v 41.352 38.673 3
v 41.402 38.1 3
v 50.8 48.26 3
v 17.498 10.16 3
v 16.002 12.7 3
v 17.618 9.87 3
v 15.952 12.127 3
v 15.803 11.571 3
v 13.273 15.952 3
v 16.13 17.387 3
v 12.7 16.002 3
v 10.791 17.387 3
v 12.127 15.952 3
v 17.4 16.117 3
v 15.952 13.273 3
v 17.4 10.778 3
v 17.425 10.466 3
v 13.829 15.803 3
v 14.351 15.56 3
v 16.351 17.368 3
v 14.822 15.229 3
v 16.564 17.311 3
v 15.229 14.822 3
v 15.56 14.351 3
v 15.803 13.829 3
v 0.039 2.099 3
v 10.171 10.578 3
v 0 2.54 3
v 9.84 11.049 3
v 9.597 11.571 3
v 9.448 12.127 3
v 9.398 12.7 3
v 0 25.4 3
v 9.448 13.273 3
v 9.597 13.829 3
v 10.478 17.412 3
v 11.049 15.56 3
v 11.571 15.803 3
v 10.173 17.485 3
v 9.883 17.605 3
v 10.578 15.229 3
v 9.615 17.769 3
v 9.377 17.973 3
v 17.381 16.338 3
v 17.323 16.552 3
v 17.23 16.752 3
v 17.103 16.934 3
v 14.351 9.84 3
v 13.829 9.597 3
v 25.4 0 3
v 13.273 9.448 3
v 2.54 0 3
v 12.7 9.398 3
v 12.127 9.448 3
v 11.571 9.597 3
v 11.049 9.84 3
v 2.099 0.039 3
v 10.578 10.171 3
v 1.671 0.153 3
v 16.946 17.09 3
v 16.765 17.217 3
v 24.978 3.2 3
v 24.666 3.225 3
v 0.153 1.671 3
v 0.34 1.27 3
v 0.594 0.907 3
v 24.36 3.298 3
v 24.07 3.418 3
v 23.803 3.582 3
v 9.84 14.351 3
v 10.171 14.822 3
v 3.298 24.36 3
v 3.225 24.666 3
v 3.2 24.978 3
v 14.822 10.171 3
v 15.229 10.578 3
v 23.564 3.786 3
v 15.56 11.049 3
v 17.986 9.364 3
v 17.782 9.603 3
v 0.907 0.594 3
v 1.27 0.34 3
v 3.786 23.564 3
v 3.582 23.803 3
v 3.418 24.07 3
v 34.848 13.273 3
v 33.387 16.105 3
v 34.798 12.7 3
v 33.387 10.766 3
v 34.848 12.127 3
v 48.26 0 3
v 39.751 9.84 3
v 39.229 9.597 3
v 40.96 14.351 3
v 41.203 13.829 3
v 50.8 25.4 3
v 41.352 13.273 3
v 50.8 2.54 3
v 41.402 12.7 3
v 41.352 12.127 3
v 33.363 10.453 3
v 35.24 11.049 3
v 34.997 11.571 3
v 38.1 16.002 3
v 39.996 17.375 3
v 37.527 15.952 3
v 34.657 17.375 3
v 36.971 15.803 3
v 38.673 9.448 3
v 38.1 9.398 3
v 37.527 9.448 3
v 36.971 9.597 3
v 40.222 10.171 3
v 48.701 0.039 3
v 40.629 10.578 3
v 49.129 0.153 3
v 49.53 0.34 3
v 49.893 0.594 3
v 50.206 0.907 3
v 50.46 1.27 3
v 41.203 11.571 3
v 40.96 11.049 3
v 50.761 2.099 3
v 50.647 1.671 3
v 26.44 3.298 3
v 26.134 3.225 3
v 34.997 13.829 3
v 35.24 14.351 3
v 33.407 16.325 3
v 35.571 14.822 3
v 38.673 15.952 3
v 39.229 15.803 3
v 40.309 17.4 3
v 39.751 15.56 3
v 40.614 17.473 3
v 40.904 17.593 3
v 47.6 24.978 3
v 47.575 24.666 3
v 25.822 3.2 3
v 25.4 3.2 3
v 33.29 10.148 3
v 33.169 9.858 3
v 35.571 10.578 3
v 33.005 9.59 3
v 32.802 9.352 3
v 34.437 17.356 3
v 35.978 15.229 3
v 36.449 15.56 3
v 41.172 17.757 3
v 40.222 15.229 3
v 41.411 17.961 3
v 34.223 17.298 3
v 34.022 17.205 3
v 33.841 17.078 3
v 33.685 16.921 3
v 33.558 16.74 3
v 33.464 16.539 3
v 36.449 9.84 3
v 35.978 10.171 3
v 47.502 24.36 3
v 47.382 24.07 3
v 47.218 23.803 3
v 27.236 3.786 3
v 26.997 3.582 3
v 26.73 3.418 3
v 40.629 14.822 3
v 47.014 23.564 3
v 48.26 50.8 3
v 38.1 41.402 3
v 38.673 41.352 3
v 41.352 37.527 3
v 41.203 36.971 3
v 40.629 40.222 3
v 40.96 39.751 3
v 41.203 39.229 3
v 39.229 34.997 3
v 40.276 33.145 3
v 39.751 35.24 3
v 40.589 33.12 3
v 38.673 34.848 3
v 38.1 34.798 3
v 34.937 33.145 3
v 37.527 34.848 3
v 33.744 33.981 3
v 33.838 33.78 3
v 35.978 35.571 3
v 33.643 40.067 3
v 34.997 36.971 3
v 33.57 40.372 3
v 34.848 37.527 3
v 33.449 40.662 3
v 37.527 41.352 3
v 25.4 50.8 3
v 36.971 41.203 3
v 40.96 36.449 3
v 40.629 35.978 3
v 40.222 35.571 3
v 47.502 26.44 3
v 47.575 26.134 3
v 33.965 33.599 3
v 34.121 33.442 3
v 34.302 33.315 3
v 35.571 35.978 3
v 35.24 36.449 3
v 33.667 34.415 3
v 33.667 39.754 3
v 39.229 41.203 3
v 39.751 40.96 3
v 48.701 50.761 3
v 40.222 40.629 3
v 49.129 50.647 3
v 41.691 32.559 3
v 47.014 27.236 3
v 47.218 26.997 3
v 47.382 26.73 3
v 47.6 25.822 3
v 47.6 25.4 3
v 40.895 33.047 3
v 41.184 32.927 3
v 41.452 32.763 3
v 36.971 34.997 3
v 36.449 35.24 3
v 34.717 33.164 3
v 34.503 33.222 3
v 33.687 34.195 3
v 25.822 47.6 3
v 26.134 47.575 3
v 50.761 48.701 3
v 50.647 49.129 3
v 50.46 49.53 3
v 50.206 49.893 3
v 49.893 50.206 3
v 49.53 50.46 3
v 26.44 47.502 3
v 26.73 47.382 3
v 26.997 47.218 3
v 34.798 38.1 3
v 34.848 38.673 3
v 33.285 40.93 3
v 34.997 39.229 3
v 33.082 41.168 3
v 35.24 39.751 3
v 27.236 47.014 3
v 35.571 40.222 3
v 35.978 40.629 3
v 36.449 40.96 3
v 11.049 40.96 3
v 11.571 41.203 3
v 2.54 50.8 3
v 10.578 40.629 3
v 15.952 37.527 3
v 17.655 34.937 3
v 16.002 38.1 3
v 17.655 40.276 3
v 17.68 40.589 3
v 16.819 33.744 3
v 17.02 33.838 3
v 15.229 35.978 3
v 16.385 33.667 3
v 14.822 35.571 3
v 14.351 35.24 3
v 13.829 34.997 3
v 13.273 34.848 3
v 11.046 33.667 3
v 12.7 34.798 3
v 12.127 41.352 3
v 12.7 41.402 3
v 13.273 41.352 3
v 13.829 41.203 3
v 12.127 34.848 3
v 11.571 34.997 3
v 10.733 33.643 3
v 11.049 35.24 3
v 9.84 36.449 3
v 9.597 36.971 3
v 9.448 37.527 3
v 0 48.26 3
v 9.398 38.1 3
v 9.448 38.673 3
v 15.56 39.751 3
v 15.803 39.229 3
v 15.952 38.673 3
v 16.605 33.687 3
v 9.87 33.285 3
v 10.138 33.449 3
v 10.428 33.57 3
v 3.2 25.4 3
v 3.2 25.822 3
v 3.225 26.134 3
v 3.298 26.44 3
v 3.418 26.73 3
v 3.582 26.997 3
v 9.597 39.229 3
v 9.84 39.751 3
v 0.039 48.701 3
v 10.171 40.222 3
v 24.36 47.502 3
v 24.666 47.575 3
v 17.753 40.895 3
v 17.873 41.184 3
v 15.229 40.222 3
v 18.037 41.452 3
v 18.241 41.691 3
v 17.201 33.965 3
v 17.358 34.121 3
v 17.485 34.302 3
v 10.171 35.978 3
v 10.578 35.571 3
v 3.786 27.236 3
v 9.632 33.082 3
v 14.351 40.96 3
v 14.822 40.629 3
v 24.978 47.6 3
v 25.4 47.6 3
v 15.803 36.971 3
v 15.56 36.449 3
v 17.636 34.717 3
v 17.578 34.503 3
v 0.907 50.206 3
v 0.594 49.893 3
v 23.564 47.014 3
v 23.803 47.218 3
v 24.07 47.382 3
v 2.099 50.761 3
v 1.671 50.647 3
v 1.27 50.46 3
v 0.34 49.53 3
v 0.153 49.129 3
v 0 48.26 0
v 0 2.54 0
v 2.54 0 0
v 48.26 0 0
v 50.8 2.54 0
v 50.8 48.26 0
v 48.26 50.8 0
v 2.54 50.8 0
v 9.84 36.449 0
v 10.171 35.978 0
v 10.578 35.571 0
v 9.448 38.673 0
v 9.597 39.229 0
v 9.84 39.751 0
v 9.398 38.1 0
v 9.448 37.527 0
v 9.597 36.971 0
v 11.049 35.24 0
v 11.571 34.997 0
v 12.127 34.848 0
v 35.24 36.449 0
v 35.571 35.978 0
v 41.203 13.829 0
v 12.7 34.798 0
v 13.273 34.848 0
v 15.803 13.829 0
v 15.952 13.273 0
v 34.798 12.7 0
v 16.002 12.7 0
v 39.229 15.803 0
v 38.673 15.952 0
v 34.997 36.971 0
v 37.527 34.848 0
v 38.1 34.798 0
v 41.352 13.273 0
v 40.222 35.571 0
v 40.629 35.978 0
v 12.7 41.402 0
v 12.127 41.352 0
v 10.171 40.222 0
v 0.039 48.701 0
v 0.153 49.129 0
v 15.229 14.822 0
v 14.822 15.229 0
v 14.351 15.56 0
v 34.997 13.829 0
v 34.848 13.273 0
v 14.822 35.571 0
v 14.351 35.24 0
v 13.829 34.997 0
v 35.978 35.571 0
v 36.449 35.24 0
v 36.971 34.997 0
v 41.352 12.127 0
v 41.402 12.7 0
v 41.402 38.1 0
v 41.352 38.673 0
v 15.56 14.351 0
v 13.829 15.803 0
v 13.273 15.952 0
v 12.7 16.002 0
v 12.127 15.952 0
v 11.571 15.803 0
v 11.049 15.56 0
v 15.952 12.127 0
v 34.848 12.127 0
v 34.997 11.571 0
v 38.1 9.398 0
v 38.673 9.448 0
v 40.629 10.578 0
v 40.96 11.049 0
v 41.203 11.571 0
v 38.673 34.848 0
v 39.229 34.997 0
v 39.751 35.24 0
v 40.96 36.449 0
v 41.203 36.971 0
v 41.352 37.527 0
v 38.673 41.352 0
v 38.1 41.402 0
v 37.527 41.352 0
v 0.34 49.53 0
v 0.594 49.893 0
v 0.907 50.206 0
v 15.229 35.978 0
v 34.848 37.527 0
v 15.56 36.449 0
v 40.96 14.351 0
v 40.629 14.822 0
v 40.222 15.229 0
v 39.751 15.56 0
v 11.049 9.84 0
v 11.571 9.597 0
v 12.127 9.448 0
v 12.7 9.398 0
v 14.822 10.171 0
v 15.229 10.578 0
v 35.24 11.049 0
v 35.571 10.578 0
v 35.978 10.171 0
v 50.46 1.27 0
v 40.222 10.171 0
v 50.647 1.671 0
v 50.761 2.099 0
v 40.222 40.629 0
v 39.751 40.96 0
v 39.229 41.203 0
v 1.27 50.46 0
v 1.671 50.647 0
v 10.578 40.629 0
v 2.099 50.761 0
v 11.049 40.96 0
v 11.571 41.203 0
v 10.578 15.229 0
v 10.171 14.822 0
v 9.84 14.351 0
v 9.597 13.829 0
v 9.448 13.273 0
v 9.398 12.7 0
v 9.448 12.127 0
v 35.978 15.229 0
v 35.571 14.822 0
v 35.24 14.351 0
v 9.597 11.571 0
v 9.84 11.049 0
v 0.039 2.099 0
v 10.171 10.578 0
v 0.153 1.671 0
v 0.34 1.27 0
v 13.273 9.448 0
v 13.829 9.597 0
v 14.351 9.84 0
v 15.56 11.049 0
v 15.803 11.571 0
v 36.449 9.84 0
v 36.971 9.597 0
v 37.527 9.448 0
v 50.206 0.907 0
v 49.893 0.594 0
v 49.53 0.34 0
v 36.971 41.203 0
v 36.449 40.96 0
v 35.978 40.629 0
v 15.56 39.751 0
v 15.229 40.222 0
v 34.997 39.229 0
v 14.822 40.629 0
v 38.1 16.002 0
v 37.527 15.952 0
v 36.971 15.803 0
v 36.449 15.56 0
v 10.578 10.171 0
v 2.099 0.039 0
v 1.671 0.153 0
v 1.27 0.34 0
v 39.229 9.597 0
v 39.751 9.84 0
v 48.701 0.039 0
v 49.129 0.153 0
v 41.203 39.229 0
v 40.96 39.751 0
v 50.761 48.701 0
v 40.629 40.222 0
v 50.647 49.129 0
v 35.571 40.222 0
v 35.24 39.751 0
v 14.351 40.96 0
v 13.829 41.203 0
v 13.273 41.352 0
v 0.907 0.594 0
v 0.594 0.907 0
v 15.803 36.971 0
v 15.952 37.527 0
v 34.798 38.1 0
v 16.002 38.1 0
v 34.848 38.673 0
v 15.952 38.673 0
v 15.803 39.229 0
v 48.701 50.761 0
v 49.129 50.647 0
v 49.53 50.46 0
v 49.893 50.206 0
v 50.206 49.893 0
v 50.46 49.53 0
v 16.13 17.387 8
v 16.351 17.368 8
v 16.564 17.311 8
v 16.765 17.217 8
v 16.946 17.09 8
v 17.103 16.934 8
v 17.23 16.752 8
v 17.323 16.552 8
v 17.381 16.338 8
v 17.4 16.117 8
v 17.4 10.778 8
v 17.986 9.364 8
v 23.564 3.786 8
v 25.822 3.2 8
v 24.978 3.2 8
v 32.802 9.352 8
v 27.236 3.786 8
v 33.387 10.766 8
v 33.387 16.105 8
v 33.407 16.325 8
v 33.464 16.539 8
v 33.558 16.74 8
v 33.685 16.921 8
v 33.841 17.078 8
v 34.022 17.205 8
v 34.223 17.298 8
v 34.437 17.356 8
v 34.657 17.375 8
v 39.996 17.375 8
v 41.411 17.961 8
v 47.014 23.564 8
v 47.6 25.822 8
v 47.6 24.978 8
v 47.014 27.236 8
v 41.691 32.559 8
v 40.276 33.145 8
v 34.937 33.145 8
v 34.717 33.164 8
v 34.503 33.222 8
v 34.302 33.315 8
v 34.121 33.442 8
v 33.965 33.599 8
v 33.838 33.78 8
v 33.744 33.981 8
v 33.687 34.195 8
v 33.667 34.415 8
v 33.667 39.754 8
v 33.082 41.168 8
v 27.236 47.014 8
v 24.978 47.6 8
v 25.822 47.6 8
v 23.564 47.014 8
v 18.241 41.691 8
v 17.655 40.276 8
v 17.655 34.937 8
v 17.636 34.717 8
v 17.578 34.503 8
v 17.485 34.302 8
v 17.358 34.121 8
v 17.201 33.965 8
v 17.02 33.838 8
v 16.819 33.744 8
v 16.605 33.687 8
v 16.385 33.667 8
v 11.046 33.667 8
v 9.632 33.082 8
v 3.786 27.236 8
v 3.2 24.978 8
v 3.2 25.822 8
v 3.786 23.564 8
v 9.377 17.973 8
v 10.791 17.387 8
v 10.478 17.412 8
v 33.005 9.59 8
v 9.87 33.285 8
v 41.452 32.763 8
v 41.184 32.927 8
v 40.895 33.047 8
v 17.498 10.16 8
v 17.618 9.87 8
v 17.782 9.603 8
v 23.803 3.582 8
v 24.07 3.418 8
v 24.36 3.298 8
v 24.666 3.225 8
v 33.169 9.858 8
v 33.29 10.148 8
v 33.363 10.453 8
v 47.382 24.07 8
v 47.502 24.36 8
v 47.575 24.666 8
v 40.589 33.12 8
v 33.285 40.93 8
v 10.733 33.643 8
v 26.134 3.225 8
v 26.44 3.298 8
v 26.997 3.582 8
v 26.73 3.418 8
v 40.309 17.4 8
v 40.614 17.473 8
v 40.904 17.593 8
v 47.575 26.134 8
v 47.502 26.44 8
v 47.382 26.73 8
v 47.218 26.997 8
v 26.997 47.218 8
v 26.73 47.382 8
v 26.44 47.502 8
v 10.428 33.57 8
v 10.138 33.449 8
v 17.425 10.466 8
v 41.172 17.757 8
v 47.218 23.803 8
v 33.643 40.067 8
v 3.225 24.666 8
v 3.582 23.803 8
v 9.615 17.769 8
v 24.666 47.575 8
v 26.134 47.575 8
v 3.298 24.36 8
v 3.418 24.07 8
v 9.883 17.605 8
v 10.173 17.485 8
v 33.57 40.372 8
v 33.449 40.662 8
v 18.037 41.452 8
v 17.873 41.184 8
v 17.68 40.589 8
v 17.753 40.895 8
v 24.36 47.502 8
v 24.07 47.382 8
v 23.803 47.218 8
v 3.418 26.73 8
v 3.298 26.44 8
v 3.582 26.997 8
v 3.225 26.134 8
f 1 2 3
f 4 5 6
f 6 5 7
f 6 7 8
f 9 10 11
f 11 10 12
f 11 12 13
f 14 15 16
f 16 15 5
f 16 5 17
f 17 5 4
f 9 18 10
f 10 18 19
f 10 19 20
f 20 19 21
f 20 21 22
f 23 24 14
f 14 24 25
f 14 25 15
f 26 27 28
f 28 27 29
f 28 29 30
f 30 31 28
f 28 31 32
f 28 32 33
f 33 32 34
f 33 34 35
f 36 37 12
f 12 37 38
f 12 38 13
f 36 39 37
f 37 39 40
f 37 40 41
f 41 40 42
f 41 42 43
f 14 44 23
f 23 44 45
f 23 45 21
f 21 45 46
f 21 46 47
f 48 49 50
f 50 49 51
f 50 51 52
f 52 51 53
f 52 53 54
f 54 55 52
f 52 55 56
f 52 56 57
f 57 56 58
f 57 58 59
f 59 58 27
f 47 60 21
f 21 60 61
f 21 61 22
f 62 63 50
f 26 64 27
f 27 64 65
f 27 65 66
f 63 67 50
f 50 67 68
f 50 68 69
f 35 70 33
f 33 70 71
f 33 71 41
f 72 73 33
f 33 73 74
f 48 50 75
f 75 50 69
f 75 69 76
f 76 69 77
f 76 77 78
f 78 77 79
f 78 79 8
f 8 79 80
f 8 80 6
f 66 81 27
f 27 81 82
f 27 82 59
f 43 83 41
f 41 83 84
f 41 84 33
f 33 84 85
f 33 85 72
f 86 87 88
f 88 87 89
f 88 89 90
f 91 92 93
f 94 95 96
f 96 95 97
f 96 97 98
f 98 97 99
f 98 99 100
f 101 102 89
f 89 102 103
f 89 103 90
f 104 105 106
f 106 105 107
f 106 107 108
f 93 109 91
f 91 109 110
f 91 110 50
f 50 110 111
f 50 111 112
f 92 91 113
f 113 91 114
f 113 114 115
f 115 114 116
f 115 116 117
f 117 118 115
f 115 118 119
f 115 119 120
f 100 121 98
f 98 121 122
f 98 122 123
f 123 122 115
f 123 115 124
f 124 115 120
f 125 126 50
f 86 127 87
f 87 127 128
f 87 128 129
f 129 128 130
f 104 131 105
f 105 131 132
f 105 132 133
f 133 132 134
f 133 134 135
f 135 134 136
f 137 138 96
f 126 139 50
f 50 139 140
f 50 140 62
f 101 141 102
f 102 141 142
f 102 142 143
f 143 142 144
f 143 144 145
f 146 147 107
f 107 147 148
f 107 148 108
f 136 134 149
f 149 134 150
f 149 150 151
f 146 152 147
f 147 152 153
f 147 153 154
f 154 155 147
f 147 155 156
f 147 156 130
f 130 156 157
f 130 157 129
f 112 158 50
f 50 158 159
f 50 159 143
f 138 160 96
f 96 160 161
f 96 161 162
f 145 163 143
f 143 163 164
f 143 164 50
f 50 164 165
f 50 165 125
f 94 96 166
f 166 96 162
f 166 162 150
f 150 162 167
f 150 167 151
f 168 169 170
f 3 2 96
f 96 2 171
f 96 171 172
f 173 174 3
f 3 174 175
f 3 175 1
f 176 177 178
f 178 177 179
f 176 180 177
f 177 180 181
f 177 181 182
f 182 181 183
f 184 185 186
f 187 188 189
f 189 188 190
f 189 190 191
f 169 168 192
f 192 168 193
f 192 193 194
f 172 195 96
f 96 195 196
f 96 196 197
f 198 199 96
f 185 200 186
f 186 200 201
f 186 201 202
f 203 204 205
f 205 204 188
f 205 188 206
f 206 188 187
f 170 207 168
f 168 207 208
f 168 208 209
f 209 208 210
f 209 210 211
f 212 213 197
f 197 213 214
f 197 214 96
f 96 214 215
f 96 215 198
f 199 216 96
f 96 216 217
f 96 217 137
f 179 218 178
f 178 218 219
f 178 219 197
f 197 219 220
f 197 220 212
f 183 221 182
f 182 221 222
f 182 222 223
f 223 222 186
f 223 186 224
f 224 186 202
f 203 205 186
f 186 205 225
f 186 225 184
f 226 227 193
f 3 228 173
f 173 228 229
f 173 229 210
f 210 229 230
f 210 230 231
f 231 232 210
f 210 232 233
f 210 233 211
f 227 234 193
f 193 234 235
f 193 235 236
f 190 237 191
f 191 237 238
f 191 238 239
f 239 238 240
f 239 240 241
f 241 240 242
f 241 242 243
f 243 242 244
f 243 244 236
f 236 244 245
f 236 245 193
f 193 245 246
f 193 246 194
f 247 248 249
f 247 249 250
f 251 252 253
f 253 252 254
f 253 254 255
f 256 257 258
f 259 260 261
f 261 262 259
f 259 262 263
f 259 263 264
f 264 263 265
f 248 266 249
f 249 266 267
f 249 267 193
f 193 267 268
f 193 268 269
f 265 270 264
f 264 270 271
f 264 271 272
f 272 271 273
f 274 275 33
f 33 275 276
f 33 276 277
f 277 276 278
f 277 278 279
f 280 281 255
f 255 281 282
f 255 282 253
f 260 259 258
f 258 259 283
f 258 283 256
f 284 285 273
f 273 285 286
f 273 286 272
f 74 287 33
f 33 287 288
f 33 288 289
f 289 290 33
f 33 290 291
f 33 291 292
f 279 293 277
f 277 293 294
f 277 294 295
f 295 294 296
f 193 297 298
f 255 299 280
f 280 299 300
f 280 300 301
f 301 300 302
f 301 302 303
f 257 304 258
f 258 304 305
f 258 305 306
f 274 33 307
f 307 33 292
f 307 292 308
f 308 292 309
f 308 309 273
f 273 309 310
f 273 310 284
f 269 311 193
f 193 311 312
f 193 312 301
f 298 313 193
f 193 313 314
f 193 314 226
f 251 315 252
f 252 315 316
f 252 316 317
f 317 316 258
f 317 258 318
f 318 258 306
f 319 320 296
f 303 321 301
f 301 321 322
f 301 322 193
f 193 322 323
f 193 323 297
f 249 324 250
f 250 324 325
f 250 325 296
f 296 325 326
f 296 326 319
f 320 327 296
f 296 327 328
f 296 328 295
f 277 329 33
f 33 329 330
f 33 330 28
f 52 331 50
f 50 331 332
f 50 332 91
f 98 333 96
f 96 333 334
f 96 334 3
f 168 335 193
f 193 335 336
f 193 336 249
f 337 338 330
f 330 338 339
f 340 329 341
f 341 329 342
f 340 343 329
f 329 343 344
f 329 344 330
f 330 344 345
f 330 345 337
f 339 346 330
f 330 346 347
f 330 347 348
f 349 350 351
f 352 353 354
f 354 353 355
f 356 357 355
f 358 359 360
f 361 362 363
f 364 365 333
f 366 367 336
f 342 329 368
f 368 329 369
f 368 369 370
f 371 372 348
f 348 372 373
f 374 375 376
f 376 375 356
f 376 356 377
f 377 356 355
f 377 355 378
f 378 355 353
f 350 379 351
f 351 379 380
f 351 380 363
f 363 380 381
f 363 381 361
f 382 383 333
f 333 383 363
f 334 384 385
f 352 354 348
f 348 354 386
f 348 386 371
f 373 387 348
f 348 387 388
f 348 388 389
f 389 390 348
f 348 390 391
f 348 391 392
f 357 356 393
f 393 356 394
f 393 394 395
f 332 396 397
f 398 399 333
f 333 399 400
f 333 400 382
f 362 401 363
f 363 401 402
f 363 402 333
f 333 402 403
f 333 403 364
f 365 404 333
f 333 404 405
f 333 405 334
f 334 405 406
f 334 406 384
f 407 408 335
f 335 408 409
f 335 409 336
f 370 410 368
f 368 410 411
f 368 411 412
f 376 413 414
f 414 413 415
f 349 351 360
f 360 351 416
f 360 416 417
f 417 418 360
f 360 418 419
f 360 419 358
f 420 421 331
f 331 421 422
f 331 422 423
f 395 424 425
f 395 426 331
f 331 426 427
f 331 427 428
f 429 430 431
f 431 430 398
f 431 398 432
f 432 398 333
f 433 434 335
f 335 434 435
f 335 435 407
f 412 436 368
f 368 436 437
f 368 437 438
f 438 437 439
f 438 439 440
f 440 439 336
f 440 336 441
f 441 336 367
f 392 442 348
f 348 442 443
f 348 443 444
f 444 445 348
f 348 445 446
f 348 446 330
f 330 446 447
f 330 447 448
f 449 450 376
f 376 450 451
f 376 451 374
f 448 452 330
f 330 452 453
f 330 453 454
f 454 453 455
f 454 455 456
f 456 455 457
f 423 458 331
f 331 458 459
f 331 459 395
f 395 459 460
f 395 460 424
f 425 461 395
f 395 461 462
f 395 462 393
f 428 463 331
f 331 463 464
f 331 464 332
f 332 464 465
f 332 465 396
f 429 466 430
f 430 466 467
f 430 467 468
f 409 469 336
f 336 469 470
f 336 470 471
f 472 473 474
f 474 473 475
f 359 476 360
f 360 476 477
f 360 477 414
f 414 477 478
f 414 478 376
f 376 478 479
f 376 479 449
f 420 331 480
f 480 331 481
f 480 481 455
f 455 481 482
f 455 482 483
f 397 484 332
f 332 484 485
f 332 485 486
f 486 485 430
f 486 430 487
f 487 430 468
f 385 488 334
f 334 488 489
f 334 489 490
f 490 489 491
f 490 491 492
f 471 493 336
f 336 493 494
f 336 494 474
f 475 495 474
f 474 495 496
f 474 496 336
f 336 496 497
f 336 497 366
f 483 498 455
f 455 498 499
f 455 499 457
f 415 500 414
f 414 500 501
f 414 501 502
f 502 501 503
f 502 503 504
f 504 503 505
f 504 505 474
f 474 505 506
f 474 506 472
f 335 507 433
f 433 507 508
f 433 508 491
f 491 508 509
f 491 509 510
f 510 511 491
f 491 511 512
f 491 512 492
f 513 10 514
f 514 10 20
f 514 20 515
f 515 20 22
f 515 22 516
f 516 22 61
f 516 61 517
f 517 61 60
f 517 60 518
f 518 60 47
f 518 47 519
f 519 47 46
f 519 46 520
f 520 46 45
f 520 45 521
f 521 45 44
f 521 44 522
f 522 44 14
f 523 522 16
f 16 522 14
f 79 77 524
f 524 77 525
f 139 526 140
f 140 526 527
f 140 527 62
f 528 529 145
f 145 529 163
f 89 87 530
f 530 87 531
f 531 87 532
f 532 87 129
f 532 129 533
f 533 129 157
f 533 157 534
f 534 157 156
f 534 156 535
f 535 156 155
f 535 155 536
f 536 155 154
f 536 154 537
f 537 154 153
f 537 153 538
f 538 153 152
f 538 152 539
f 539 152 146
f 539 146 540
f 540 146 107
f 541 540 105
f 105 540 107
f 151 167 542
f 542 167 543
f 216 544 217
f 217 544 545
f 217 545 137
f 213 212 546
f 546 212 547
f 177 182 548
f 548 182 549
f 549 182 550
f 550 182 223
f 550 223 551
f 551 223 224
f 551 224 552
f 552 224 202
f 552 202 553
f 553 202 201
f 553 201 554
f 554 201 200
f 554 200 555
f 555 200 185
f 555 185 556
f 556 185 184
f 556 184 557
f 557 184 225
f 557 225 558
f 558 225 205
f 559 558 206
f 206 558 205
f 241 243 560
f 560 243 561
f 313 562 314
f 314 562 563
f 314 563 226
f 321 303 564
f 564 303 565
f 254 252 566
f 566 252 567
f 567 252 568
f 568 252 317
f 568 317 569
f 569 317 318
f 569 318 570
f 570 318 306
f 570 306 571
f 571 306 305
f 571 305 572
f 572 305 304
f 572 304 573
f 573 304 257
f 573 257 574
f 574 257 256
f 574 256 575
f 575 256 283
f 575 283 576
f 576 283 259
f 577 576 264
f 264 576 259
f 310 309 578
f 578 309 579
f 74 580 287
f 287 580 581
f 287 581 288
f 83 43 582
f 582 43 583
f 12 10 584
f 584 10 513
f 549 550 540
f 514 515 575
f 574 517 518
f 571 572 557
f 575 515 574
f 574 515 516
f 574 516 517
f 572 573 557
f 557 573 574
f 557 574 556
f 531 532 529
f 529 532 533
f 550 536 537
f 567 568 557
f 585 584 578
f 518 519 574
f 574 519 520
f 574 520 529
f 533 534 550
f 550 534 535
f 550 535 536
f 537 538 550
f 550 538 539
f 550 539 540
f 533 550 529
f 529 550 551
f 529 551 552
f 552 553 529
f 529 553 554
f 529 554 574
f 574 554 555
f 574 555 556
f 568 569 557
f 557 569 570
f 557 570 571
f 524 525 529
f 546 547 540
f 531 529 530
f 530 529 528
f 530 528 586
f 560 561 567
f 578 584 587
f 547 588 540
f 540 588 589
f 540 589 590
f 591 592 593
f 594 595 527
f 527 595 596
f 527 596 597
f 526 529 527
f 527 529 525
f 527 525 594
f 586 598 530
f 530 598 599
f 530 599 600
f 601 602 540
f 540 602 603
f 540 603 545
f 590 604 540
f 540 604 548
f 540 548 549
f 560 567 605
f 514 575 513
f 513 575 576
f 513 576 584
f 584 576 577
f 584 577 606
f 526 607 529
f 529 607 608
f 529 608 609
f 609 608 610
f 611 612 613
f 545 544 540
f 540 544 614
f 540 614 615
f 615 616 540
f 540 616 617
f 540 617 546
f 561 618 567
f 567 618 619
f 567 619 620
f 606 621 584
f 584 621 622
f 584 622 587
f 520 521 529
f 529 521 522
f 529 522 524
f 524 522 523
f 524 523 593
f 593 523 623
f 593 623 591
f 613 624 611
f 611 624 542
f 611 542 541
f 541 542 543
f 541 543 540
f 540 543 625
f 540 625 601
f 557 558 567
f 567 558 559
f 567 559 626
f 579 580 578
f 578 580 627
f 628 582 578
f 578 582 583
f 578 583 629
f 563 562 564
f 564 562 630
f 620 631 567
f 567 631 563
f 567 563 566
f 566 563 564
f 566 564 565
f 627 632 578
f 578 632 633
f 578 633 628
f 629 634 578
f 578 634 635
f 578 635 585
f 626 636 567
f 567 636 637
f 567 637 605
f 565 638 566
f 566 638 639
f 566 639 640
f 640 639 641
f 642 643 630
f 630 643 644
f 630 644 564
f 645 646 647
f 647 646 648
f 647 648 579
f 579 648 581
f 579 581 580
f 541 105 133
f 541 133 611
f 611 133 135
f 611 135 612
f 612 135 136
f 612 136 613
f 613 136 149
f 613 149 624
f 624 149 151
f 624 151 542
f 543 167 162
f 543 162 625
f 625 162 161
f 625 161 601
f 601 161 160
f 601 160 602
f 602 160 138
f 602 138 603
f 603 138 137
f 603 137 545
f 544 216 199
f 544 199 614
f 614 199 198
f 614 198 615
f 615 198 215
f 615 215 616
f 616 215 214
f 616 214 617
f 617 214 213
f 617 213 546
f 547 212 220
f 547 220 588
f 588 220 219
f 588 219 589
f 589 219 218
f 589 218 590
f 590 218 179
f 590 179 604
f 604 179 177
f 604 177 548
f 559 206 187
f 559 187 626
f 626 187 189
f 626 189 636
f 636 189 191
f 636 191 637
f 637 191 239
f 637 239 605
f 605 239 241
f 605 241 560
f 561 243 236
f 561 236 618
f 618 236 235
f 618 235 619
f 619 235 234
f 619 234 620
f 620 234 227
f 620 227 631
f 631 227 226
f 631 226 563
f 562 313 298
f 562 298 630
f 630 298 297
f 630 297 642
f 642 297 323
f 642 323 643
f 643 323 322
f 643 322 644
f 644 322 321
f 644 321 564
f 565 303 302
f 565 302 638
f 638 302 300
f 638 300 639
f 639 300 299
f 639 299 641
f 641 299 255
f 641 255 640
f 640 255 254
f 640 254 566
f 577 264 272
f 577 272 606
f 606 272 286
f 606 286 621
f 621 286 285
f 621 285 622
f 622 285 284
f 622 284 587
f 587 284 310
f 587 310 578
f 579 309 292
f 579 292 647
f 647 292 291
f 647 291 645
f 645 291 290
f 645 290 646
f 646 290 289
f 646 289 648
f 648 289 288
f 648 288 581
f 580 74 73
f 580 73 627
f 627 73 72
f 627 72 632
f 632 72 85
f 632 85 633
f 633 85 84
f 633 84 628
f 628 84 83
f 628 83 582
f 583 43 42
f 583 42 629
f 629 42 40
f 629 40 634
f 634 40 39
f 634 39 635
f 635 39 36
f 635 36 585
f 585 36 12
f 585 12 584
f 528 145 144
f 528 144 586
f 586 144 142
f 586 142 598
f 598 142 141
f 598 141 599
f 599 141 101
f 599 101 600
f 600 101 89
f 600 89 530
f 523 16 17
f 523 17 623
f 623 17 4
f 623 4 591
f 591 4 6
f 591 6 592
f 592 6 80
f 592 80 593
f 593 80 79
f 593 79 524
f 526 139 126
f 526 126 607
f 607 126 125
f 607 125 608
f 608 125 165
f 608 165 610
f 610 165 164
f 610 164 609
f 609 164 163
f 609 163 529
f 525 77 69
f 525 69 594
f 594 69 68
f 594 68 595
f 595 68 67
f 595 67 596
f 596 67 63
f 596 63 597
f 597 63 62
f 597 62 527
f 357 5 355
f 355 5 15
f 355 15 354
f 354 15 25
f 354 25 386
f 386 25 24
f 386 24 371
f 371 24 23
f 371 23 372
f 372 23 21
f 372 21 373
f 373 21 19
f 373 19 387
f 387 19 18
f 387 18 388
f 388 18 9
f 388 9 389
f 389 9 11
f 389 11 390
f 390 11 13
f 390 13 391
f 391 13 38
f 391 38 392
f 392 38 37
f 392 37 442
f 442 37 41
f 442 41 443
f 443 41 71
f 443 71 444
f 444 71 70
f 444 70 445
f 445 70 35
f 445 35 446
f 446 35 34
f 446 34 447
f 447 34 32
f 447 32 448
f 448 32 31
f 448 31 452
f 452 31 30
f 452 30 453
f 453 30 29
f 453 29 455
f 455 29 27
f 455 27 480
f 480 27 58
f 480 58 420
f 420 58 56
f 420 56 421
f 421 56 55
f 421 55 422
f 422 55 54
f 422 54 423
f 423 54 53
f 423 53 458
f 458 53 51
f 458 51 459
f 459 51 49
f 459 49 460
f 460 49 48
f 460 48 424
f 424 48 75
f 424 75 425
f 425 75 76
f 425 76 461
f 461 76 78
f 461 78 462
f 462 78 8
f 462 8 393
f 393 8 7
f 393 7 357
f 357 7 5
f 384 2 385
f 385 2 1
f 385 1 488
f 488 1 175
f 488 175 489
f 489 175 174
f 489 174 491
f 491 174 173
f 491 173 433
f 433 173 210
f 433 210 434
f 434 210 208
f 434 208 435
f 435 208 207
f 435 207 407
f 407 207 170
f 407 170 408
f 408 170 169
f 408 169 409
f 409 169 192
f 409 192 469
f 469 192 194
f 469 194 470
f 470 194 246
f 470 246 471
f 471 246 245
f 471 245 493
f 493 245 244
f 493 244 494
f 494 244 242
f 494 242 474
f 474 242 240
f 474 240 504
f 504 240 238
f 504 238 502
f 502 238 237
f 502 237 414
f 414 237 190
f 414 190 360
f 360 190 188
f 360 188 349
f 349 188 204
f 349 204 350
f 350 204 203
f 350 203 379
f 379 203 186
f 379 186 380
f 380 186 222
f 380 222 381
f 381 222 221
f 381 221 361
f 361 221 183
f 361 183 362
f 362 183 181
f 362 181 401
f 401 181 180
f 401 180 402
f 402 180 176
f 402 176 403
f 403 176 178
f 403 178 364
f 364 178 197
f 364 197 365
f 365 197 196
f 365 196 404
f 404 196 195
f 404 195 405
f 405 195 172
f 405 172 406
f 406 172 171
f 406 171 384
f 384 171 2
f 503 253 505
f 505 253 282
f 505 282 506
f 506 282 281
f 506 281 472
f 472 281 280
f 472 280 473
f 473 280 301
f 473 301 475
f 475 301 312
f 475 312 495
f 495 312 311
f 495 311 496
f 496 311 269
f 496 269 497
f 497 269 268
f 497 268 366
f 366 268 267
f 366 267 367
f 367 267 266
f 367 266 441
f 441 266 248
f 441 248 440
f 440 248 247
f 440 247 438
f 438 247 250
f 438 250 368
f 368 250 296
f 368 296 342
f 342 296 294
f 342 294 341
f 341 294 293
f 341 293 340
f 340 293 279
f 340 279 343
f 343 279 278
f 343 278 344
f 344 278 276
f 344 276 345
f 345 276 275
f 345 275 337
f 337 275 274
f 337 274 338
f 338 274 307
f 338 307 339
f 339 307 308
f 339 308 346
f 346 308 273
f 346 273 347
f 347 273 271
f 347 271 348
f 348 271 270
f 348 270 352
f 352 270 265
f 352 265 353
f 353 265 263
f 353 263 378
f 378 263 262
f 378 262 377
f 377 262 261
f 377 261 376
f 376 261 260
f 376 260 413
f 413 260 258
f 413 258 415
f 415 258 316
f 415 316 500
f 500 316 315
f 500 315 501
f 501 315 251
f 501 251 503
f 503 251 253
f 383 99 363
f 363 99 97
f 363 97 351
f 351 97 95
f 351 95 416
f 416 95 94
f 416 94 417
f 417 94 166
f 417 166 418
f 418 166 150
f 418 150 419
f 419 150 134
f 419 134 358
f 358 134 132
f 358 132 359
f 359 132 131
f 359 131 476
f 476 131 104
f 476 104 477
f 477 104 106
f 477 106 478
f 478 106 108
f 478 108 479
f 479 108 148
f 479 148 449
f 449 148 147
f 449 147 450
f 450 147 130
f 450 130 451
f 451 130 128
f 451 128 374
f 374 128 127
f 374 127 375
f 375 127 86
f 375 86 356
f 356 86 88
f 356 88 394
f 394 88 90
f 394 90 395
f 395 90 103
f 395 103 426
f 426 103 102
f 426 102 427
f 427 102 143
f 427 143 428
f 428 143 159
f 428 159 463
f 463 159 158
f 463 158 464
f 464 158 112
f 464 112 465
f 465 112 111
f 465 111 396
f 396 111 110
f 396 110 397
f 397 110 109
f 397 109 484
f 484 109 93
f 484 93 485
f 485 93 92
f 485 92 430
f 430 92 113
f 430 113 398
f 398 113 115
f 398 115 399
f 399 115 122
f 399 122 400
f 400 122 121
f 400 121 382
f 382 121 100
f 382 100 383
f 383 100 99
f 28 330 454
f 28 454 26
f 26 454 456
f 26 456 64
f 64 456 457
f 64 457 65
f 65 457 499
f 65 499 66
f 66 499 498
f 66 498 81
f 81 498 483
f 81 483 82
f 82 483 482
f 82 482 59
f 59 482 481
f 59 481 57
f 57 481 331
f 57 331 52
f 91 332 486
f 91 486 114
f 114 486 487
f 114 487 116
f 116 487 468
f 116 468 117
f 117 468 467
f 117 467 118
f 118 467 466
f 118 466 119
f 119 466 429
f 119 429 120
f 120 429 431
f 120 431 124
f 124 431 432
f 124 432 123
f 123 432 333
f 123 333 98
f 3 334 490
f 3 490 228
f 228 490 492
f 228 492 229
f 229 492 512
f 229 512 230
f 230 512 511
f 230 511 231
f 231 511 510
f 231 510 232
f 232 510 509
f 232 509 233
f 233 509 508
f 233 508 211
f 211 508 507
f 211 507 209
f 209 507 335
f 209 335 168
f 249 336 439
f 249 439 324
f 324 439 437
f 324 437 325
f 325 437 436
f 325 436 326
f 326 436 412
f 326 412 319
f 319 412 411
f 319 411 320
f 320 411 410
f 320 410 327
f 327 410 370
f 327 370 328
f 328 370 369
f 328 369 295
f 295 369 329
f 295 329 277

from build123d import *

# Parameters (mm, degrees)
SKETCH1_W           = 50.8
SKETCH1_H           = 50.8
BOSS_EXTRUDE1_DEPTH = 3
BOSS_EXTRUDE2_DEPTH = 5
FILLET1_R           = 2
SKETCH3_R           = 3.302
CUT_EXTRUDE3_DEPTH  = 75.162524229
FILLET2_R           = 2.54


with BuildPart() as part:
    # Sketch1 → Boss-Extrude1 (new body)
    with BuildSketch(Plane.XY):
        with Locations((25.4, 25.4)):
            Rectangle(SKETCH1_W, SKETCH1_H)
    extrude(amount=BOSS_EXTRUDE1_DEPTH)

    # Sketch8 → Boss-Extrude2 (add)
    with BuildSketch(Plane(origin=(3, 0, 3), x_dir=(1, 0, 0), z_dir=(0, 0, 1))):
        with BuildLine():
            Line((14.4, 9.95), (14.4, 16.117488447))
            ThreePointArc((14.4, 16.117488447), (14.028025612, 17.015514059), (13.13, 17.387488447))
            Line((13.13, 17.387488447), (6.962511553, 17.387488447))
            Line((6.962511553, 17.387488447), (0.2, 24.15))
            Line((0.2, 24.15), (0.2, 26.65))
            Line((0.2, 26.65), (7.217411382, 33.667411382))
            Line((7.217411382, 33.667411382), (13.384899829, 33.667411382))
            ThreePointArc((13.384899829, 33.667411382), (14.282925441, 34.03938577), (14.654899829, 34.937411382))
            Line((14.654899829, 34.937411382), (14.654899829, 41.104899829))
            Line((14.654899829, 41.104899829), (21.15, 47.6))
            Line((21.15, 47.6), (23.65, 47.6))
            Line((23.65, 47.6), (30.667411382, 40.582588618))
            Line((30.667411382, 40.582588618), (30.667411382, 34.415100171))
            ThreePointArc((30.667411382, 34.415100171), (31.03938577, 33.517074559), (31.937411382, 33.145100171))
            Line((31.937411382, 33.145100171), (38.104899829, 33.145100171))
            Line((38.104899829, 33.145100171), (44.6, 26.65))
            Line((44.6, 26.65), (44.6, 24.15))
            Line((44.6, 24.15), (37.824884254, 17.374884254))
            Line((37.824884254, 17.374884254), (31.657395807, 17.374884254))
            ThreePointArc((31.657395807, 17.374884254), (30.759370195, 17.002909866), (30.387395807, 16.104884254))
            Line((30.387395807, 16.104884254), (30.387395807, 9.937395807))
            Line((30.387395807, 9.937395807), (23.65, 3.2))
            Line((23.65, 3.2), (21.15, 3.2))
            Line((21.15, 3.2), (14.4, 9.95))
        make_face()
    extrude(amount=BOSS_EXTRUDE2_DEPTH)

    # Fillet1
    fillet1_edges = [part.edges().sort_by_distance(p)[0] for p in [
        (17.4, 9.95, 5.5),
        (24.15, 3.2, 5.5),
        (26.65, 3.2, 5.5),
        (33.387395807, 9.937395807, 5.5),
        (40.824884254, 17.374884254, 5.5),
        (47.6, 24.15, 5.5),
        (47.6, 26.65, 5.5),
        (41.104899829, 33.145100171, 5.5),
        (33.667411382, 40.582588618, 5.5),
        (26.65, 47.6, 5.5),
        (24.15, 47.6, 5.5),
        (17.654899829, 41.104899829, 5.5),
        (10.217411382, 33.667411382, 5.5),
        (3.2, 26.65, 5.5),
        (3.2, 24.15, 5.5),
        (9.962511553, 17.387488447, 5.5),
    ]]
    fillet(fillet1_edges, radius=FILLET1_R)

    # Sketch3 → Cut-Extrude3 (cut, through all)
    with BuildSketch(Plane(origin=(-3, 0, 3), x_dir=(-1, 0, 0), z_dir=(0, 0, -1))):
        with Locations((-15.7, 12.7)):
            Circle(SKETCH3_R)
        with Locations((-41.1, 38.1)):
            Circle(SKETCH3_R)
        with Locations((-15.7, 38.1)):
            Circle(SKETCH3_R)
        with Locations((-41.1, 12.7)):
            Circle(SKETCH3_R)
    extrude(amount=CUT_EXTRUDE3_DEPTH, mode=Mode.SUBTRACT)

    # Fillet2
    fillet2_edges = [part.edges().sort_by_distance(p)[0] for p in [
        (0, 50.8, 1.5),
        (50.8, 50.8, 1.5),
        (50.8, 0, 1.5),
        (0, 0, 1.5),
    ]]
    fillet(fillet2_edges, radius=FILLET2_R)


solid = part.part
